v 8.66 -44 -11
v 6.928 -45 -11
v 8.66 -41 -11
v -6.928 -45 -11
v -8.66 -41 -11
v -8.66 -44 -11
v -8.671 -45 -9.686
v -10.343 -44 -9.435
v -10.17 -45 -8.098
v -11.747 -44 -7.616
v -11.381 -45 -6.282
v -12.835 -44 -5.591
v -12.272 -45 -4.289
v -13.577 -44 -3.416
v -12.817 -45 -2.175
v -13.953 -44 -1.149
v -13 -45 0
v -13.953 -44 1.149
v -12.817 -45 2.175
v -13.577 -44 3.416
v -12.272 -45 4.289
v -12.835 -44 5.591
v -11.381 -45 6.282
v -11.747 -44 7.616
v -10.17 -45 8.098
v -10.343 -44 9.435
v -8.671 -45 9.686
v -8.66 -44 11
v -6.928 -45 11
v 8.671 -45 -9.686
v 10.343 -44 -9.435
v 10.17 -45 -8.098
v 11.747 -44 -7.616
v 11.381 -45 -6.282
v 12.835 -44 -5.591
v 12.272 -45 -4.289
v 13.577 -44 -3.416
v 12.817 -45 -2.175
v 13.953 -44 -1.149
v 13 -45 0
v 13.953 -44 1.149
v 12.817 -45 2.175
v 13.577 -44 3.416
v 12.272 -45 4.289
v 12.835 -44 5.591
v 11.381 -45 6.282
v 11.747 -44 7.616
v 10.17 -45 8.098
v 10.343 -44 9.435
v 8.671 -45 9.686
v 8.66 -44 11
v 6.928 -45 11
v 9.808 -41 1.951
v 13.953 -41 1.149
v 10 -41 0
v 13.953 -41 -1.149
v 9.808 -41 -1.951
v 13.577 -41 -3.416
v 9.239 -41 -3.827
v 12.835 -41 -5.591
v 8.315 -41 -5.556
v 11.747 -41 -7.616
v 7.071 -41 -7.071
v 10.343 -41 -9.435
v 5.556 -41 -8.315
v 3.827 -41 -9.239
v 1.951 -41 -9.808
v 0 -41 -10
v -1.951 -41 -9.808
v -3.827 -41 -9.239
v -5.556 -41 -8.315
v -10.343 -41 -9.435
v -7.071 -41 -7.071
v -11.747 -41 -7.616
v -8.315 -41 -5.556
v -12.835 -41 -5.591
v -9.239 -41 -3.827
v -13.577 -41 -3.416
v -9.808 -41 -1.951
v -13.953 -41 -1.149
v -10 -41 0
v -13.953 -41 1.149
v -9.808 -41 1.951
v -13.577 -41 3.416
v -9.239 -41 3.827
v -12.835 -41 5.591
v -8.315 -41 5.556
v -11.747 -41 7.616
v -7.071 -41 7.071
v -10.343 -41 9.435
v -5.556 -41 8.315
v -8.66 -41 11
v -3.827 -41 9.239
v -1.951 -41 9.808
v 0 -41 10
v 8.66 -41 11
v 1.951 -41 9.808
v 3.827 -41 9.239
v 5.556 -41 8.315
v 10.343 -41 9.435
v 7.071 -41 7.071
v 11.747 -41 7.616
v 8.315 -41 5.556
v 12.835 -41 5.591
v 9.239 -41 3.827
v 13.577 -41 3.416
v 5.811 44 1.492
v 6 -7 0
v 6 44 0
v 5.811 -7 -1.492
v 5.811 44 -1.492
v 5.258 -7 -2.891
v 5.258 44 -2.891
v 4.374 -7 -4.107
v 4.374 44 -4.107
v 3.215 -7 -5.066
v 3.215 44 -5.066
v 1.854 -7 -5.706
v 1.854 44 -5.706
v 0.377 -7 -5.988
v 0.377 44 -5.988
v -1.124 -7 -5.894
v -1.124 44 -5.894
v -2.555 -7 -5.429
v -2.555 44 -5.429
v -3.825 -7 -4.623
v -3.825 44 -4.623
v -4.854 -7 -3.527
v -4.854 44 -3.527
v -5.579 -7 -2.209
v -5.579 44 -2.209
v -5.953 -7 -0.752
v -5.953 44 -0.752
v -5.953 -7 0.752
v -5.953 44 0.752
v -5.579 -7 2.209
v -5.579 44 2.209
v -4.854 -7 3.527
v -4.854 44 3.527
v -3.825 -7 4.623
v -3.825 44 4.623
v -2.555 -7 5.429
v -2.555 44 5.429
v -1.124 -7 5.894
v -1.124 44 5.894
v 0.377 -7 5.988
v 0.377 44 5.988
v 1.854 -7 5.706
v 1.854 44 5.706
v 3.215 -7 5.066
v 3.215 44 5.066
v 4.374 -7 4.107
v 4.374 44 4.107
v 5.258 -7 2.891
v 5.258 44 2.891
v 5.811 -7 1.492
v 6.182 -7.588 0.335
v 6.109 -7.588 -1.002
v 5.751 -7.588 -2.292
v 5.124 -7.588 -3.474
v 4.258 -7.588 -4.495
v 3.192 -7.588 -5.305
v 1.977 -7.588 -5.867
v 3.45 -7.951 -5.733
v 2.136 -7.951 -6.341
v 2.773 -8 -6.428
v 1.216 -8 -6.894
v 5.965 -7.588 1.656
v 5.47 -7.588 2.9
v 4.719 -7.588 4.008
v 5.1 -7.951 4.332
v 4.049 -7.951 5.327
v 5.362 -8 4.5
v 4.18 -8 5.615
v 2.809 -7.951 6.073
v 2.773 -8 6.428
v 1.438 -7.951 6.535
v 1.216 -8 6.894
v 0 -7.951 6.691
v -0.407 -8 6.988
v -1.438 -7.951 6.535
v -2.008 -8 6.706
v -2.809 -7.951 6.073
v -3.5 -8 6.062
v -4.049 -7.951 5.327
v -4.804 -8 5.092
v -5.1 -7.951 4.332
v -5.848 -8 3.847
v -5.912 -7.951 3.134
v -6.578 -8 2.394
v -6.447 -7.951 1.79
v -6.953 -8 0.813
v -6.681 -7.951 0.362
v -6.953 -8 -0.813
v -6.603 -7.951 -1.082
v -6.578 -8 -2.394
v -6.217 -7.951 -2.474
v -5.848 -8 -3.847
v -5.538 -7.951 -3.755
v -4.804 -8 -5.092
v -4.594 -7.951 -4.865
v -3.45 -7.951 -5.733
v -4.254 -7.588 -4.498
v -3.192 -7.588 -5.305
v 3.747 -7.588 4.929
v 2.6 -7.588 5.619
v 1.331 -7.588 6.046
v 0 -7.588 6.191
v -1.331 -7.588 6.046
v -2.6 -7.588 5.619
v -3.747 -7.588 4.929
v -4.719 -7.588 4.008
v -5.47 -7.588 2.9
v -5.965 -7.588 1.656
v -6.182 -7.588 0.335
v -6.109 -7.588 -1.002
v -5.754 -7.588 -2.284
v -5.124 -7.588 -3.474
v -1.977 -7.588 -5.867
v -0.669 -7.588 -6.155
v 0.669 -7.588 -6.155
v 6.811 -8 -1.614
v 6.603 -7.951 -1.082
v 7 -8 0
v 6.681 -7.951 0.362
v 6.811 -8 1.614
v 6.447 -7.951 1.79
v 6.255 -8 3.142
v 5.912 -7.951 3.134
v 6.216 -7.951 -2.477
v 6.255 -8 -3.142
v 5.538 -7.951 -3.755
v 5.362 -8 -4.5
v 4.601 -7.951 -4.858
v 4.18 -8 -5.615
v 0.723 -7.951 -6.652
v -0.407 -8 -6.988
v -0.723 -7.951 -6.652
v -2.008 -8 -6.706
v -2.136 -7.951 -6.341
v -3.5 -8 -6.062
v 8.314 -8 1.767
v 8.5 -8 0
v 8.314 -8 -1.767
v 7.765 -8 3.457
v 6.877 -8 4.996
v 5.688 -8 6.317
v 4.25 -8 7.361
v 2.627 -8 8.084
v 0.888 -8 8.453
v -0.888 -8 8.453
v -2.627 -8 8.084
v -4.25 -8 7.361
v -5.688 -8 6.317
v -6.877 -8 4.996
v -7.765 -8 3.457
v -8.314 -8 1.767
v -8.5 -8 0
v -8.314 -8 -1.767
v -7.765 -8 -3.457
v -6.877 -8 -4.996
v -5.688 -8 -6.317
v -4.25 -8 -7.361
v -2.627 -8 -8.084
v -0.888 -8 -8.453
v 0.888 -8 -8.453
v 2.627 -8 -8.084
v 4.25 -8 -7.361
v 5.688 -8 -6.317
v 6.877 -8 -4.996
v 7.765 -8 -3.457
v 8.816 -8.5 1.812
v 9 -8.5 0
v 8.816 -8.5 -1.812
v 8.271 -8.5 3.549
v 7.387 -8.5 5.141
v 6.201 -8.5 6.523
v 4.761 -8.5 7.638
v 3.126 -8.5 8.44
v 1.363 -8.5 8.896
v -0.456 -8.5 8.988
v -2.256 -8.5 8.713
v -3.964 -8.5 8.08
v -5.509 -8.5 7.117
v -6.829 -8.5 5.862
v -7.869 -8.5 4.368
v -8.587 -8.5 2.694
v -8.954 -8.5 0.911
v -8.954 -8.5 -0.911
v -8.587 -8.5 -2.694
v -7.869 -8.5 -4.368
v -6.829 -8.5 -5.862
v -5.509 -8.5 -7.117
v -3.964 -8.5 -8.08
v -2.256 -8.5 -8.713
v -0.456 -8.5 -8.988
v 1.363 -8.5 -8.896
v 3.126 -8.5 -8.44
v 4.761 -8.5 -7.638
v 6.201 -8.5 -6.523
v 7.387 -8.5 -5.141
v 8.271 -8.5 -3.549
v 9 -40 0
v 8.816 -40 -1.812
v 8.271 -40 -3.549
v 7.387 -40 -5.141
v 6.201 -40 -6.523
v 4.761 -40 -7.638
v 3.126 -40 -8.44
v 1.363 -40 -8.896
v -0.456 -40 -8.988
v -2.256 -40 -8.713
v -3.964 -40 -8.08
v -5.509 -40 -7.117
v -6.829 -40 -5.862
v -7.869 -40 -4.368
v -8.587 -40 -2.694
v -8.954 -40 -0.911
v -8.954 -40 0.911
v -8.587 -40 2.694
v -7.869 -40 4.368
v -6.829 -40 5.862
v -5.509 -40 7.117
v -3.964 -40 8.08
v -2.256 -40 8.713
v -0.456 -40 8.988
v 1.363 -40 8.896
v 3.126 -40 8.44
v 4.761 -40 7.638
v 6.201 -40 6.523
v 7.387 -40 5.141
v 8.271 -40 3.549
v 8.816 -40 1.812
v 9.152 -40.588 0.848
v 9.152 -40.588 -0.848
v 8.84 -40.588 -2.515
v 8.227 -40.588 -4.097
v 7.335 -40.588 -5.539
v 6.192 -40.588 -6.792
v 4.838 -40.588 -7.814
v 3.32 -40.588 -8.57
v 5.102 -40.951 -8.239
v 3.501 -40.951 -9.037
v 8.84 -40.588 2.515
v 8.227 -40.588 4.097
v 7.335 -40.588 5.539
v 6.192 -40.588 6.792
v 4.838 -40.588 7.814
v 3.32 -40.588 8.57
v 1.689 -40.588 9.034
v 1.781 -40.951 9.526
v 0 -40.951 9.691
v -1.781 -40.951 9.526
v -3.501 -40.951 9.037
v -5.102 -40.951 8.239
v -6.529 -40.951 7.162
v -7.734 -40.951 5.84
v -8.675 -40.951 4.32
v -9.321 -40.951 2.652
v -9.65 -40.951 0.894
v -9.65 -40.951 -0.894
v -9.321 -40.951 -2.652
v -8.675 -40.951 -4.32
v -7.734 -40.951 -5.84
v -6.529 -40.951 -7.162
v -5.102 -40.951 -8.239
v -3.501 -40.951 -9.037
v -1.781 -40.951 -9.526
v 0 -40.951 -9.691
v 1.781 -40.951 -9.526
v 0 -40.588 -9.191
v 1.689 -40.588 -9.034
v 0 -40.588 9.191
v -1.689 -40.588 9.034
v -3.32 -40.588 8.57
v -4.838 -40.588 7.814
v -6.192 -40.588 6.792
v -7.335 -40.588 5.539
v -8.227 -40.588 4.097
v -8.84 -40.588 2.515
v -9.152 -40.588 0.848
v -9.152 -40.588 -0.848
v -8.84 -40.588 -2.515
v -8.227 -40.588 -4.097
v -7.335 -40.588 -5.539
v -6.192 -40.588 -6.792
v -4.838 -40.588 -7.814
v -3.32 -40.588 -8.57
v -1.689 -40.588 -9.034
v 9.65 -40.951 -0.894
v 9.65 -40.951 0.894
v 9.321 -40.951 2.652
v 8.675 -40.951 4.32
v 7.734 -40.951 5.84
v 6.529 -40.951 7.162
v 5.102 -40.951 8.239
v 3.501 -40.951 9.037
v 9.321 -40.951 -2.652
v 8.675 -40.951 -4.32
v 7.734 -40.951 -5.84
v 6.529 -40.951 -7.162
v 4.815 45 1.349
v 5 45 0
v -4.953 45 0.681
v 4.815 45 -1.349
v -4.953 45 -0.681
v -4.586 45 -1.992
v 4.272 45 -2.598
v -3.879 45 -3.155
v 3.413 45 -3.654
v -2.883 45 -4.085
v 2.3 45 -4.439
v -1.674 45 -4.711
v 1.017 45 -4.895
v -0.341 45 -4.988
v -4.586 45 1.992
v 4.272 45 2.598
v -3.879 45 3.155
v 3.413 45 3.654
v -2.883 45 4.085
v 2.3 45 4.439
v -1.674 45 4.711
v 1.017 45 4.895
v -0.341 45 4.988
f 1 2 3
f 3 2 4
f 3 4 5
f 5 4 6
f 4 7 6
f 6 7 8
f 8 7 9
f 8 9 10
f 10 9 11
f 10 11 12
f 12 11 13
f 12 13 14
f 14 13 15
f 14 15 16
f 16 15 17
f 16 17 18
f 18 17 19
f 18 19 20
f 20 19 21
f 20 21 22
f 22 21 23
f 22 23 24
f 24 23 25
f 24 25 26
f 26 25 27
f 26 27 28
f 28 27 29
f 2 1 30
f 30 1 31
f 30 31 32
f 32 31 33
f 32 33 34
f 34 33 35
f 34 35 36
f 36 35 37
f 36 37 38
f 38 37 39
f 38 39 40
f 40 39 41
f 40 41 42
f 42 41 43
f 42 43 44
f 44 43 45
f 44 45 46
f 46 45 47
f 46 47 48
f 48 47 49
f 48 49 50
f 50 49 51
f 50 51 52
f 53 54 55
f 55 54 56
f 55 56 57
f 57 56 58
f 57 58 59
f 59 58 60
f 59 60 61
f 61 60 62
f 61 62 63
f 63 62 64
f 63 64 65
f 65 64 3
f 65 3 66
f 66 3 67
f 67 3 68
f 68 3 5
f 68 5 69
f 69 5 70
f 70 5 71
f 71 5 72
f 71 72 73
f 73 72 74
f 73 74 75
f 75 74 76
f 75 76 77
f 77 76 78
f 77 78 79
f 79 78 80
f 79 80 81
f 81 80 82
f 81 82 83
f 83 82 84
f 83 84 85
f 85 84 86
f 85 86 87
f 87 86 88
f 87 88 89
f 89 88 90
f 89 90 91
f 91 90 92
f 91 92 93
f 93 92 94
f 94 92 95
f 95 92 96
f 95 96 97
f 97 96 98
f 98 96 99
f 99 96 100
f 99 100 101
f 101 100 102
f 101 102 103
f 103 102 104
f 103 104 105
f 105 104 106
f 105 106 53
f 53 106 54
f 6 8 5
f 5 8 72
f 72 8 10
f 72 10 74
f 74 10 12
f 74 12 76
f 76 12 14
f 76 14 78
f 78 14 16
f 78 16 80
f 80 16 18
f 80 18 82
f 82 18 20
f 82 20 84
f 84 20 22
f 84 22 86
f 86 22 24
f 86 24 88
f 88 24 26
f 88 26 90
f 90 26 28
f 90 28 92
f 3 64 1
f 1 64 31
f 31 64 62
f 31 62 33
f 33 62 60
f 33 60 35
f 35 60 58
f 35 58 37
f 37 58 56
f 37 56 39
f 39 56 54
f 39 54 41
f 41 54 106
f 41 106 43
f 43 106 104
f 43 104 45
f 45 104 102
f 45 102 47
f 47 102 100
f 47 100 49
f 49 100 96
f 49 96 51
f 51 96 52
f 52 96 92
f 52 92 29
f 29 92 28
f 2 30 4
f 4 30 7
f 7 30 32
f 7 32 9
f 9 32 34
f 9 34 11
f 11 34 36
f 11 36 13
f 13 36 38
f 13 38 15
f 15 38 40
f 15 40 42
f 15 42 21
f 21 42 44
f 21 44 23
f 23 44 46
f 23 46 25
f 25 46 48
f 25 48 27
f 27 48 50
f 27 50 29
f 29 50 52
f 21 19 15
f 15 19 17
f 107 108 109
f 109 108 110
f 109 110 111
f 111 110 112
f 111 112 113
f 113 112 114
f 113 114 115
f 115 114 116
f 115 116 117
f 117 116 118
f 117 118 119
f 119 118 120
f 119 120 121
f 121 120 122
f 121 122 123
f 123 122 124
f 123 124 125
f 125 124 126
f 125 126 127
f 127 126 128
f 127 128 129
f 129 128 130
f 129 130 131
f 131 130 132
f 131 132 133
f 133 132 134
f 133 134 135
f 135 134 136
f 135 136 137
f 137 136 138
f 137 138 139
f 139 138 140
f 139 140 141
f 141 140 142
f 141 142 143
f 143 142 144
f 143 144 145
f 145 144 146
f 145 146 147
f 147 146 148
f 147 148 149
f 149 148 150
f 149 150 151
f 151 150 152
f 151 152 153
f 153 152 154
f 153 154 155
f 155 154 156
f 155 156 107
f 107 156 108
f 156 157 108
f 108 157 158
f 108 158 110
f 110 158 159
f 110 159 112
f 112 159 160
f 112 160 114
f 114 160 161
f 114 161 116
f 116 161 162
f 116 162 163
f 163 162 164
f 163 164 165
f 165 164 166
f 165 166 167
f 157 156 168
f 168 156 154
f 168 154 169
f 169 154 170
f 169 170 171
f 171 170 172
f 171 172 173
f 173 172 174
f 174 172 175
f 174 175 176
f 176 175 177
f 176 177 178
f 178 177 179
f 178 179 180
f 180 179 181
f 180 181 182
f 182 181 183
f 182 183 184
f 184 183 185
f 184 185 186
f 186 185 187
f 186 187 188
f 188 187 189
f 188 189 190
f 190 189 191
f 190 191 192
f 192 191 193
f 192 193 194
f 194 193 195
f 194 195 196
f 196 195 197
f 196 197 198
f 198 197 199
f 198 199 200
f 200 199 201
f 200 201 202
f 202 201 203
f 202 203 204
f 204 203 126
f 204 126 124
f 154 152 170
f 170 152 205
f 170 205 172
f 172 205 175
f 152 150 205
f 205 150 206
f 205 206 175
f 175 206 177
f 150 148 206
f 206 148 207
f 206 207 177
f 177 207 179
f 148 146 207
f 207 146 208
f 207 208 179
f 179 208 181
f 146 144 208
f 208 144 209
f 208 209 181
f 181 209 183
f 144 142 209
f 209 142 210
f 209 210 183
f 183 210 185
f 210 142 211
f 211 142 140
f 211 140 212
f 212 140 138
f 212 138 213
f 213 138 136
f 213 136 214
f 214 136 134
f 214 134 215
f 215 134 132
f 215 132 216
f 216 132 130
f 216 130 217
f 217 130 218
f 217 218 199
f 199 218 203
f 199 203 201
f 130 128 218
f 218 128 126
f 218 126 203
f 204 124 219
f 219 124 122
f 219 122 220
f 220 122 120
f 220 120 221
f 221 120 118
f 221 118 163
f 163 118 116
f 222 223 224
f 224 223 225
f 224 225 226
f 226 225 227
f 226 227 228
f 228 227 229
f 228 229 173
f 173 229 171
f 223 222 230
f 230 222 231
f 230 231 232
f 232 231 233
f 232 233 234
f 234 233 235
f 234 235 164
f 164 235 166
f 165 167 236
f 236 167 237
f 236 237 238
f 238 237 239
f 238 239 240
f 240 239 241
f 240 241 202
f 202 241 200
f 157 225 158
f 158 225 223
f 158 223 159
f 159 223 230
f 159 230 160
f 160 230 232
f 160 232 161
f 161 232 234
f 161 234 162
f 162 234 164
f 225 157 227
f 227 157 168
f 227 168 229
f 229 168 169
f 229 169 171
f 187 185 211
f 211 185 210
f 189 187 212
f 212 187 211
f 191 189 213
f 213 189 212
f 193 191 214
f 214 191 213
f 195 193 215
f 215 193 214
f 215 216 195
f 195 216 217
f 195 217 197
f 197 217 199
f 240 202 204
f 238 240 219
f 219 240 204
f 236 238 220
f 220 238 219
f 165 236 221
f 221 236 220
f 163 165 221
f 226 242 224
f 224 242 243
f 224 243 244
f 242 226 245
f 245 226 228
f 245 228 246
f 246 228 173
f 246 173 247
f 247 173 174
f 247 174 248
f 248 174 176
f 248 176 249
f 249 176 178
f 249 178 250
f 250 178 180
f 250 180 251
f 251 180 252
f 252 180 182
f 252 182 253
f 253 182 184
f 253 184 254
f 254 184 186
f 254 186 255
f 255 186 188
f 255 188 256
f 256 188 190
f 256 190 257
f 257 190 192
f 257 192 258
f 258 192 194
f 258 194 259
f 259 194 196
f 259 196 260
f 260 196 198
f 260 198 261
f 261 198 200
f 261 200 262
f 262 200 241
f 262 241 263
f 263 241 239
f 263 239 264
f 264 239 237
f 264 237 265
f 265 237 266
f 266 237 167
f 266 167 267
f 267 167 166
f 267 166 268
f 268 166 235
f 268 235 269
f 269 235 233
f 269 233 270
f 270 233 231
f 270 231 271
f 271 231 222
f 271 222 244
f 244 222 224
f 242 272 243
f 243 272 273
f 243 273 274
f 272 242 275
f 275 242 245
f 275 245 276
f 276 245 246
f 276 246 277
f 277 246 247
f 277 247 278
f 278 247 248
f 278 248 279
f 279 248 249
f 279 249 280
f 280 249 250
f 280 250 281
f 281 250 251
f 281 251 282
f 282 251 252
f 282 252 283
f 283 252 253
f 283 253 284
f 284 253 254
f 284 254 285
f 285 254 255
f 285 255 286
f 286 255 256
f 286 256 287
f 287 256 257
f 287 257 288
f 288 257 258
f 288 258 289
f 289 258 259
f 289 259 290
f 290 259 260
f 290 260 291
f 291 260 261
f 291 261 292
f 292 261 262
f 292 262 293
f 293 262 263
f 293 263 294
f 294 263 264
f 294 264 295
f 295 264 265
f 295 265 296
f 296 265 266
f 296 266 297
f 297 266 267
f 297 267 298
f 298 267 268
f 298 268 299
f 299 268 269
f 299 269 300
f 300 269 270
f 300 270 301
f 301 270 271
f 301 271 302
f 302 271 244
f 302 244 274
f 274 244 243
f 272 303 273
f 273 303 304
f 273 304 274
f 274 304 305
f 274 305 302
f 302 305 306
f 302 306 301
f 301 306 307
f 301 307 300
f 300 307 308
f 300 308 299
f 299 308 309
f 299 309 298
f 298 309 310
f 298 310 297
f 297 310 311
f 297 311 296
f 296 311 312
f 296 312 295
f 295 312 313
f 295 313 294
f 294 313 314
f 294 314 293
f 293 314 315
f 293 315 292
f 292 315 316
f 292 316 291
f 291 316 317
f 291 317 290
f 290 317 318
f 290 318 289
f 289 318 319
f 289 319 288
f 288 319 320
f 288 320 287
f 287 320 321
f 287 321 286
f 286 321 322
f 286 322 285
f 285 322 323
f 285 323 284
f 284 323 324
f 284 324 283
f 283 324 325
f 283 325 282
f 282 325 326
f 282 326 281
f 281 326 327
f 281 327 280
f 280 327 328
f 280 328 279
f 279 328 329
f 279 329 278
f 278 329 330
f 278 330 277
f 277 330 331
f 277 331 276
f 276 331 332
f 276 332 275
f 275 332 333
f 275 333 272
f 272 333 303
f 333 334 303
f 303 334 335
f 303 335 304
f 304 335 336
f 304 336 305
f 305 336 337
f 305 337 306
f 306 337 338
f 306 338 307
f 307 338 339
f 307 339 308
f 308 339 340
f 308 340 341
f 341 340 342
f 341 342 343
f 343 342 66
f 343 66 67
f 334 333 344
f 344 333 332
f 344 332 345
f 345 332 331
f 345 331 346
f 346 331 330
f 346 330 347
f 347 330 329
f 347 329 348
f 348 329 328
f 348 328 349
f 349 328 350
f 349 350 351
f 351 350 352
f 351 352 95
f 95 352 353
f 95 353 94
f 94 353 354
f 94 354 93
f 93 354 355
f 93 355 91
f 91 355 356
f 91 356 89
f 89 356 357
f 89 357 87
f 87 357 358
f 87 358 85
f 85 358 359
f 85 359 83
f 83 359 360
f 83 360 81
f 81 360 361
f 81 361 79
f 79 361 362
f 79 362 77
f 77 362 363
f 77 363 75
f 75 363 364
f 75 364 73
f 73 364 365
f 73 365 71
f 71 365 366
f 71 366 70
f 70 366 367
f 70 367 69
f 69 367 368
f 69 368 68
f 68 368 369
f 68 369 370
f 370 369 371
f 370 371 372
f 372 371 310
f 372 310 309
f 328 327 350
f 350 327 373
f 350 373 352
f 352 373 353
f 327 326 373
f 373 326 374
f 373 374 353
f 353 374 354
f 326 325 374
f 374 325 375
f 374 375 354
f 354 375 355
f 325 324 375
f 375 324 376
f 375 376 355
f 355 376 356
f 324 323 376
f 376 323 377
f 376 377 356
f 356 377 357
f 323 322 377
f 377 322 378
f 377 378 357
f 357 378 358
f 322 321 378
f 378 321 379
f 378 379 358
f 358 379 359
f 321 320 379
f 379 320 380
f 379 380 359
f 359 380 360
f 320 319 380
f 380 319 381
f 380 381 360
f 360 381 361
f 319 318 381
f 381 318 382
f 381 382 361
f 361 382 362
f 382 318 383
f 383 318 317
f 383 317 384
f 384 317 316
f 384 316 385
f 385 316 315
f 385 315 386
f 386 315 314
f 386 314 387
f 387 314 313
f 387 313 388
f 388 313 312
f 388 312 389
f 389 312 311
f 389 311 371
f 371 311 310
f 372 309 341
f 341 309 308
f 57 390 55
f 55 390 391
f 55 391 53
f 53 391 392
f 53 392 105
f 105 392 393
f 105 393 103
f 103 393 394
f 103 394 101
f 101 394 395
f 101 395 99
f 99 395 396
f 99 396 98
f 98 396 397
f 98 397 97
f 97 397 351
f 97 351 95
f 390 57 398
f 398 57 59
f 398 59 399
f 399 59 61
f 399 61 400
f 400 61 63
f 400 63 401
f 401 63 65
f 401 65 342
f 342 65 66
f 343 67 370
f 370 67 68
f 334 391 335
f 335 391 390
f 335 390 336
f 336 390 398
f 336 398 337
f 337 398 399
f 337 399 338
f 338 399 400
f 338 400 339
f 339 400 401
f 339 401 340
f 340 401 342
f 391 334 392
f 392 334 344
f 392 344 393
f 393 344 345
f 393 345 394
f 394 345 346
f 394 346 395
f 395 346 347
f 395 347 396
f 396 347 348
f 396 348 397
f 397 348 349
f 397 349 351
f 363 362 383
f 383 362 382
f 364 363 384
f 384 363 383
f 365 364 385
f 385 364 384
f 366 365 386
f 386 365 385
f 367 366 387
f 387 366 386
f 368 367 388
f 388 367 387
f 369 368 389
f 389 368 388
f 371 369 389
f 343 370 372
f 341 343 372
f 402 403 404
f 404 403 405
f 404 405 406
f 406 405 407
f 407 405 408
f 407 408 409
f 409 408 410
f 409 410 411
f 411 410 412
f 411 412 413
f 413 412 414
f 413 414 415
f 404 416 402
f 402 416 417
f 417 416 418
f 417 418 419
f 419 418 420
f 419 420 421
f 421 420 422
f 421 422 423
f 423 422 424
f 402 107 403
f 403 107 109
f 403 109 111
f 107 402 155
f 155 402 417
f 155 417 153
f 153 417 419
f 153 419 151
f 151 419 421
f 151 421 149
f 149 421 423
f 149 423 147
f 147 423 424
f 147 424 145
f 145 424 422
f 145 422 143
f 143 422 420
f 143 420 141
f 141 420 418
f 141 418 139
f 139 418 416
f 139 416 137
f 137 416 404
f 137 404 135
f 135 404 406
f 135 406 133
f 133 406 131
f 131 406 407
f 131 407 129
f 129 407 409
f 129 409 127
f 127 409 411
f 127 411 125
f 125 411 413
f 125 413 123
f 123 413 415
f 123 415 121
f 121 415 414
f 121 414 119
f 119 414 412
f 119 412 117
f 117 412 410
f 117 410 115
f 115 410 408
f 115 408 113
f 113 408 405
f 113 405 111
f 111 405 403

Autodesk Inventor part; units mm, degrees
ref_plane "YZ Plane" through (0, 0, 0) normal (1, 0, 0) x (0, 1, 0)
ref_plane "XZ Plane" through (0, 0, 0) normal (0, 1, 0) x (-1, 0, 0)
ref_plane "XY Plane" through (0, 0, 0) normal (0, 0, 1) x (1, 0, 0)
sketch "Эскиз1" plane through (0, 0, 0) normal (0, 0, 1) x (1, 0, 0)
  line L0 (0, 45) -> (0, -45)
  line L1 (0, -45) -> (13, -45)
  line L2 (14, -44) -> (14, -41)
  line L3 (14, -41) -> (10, -41)
  line L4 (9, -40) -> (9, -8.5)
  line L5 (8.5, -8) -> (7, -8)
  line L6 (6, -7) -> (6, 44)
  line L7 (5, 45) -> (0, 45)
  line L8 (14, -44) -> (13, -45)
  arc A0 (9, -40) -> (10, -41) centre (10, -40) ccw
  line L9 (9, -8.5) -> (8.5, -8)
  arc A1 (6, -7) -> (7, -8) centre (7, -7) ccw
  line L10 (6, 44) -> (5, 45)
  point P0 (0, 0)
  point P1 (0, 0)
  point P2 (14, -45)
  point P3 (9, -8)
  point P4 (6, 45)
  dimension "d0" = 90
  dimension "d1" = 28
  dimension "d2" = 1
  dimension "d3" = 45
  dimension "d4" = 4
  dimension "d5" = 1
  dimension "d6" = 18
  dimension "d7" = 0.5
  dimension "d8" = 45
  dimension "d9" = 1
  dimension "d10" = 12
  dimension "d11" = 33
  dimension "d12" = 1
  dimension "d13" = 45
revolve "Вращение1" add sketch "Эскиз1" angle 360 about axis through (0, 45, 0) along (0, -1, 0)
sketch "Эскиз2" plane through (0, -45, 0) normal (0, -1, 0) x (1, 0, 0)
  line L0 (0, 11) -> (0, -11) construction
  line L1 (-14, 14) -> (14, 14)
  line L2 (14, 14) -> (14, 11)
  line L3 (14, 11) -> (-14, 11)
  line L4 (-14, 11) -> (-14, 14)
  circle A0 centre (0, 0) radius 14 projected
  point P0 (0, 0)
  point P1 (0, 0)
  dimension "d15" = 22
  dimension "d16" = 28
extrude "Выдавливание1" cut sketch "Эскиз2" against normal through all contours L1 A0 L3 L4 | L1 L2 L3 A0 | A0 L3 picked at (2.0072, 11.5463)
mirror "Зеркальное отражение1" about plane through (0, 0, 0) normal (0, 0, 1) of "Выдавливание1"
thread "Резьба1" size "M12x1.25" class "6g" standard "ISO Metric profile" length 20
properties part number "62. Ось рычага управления"
